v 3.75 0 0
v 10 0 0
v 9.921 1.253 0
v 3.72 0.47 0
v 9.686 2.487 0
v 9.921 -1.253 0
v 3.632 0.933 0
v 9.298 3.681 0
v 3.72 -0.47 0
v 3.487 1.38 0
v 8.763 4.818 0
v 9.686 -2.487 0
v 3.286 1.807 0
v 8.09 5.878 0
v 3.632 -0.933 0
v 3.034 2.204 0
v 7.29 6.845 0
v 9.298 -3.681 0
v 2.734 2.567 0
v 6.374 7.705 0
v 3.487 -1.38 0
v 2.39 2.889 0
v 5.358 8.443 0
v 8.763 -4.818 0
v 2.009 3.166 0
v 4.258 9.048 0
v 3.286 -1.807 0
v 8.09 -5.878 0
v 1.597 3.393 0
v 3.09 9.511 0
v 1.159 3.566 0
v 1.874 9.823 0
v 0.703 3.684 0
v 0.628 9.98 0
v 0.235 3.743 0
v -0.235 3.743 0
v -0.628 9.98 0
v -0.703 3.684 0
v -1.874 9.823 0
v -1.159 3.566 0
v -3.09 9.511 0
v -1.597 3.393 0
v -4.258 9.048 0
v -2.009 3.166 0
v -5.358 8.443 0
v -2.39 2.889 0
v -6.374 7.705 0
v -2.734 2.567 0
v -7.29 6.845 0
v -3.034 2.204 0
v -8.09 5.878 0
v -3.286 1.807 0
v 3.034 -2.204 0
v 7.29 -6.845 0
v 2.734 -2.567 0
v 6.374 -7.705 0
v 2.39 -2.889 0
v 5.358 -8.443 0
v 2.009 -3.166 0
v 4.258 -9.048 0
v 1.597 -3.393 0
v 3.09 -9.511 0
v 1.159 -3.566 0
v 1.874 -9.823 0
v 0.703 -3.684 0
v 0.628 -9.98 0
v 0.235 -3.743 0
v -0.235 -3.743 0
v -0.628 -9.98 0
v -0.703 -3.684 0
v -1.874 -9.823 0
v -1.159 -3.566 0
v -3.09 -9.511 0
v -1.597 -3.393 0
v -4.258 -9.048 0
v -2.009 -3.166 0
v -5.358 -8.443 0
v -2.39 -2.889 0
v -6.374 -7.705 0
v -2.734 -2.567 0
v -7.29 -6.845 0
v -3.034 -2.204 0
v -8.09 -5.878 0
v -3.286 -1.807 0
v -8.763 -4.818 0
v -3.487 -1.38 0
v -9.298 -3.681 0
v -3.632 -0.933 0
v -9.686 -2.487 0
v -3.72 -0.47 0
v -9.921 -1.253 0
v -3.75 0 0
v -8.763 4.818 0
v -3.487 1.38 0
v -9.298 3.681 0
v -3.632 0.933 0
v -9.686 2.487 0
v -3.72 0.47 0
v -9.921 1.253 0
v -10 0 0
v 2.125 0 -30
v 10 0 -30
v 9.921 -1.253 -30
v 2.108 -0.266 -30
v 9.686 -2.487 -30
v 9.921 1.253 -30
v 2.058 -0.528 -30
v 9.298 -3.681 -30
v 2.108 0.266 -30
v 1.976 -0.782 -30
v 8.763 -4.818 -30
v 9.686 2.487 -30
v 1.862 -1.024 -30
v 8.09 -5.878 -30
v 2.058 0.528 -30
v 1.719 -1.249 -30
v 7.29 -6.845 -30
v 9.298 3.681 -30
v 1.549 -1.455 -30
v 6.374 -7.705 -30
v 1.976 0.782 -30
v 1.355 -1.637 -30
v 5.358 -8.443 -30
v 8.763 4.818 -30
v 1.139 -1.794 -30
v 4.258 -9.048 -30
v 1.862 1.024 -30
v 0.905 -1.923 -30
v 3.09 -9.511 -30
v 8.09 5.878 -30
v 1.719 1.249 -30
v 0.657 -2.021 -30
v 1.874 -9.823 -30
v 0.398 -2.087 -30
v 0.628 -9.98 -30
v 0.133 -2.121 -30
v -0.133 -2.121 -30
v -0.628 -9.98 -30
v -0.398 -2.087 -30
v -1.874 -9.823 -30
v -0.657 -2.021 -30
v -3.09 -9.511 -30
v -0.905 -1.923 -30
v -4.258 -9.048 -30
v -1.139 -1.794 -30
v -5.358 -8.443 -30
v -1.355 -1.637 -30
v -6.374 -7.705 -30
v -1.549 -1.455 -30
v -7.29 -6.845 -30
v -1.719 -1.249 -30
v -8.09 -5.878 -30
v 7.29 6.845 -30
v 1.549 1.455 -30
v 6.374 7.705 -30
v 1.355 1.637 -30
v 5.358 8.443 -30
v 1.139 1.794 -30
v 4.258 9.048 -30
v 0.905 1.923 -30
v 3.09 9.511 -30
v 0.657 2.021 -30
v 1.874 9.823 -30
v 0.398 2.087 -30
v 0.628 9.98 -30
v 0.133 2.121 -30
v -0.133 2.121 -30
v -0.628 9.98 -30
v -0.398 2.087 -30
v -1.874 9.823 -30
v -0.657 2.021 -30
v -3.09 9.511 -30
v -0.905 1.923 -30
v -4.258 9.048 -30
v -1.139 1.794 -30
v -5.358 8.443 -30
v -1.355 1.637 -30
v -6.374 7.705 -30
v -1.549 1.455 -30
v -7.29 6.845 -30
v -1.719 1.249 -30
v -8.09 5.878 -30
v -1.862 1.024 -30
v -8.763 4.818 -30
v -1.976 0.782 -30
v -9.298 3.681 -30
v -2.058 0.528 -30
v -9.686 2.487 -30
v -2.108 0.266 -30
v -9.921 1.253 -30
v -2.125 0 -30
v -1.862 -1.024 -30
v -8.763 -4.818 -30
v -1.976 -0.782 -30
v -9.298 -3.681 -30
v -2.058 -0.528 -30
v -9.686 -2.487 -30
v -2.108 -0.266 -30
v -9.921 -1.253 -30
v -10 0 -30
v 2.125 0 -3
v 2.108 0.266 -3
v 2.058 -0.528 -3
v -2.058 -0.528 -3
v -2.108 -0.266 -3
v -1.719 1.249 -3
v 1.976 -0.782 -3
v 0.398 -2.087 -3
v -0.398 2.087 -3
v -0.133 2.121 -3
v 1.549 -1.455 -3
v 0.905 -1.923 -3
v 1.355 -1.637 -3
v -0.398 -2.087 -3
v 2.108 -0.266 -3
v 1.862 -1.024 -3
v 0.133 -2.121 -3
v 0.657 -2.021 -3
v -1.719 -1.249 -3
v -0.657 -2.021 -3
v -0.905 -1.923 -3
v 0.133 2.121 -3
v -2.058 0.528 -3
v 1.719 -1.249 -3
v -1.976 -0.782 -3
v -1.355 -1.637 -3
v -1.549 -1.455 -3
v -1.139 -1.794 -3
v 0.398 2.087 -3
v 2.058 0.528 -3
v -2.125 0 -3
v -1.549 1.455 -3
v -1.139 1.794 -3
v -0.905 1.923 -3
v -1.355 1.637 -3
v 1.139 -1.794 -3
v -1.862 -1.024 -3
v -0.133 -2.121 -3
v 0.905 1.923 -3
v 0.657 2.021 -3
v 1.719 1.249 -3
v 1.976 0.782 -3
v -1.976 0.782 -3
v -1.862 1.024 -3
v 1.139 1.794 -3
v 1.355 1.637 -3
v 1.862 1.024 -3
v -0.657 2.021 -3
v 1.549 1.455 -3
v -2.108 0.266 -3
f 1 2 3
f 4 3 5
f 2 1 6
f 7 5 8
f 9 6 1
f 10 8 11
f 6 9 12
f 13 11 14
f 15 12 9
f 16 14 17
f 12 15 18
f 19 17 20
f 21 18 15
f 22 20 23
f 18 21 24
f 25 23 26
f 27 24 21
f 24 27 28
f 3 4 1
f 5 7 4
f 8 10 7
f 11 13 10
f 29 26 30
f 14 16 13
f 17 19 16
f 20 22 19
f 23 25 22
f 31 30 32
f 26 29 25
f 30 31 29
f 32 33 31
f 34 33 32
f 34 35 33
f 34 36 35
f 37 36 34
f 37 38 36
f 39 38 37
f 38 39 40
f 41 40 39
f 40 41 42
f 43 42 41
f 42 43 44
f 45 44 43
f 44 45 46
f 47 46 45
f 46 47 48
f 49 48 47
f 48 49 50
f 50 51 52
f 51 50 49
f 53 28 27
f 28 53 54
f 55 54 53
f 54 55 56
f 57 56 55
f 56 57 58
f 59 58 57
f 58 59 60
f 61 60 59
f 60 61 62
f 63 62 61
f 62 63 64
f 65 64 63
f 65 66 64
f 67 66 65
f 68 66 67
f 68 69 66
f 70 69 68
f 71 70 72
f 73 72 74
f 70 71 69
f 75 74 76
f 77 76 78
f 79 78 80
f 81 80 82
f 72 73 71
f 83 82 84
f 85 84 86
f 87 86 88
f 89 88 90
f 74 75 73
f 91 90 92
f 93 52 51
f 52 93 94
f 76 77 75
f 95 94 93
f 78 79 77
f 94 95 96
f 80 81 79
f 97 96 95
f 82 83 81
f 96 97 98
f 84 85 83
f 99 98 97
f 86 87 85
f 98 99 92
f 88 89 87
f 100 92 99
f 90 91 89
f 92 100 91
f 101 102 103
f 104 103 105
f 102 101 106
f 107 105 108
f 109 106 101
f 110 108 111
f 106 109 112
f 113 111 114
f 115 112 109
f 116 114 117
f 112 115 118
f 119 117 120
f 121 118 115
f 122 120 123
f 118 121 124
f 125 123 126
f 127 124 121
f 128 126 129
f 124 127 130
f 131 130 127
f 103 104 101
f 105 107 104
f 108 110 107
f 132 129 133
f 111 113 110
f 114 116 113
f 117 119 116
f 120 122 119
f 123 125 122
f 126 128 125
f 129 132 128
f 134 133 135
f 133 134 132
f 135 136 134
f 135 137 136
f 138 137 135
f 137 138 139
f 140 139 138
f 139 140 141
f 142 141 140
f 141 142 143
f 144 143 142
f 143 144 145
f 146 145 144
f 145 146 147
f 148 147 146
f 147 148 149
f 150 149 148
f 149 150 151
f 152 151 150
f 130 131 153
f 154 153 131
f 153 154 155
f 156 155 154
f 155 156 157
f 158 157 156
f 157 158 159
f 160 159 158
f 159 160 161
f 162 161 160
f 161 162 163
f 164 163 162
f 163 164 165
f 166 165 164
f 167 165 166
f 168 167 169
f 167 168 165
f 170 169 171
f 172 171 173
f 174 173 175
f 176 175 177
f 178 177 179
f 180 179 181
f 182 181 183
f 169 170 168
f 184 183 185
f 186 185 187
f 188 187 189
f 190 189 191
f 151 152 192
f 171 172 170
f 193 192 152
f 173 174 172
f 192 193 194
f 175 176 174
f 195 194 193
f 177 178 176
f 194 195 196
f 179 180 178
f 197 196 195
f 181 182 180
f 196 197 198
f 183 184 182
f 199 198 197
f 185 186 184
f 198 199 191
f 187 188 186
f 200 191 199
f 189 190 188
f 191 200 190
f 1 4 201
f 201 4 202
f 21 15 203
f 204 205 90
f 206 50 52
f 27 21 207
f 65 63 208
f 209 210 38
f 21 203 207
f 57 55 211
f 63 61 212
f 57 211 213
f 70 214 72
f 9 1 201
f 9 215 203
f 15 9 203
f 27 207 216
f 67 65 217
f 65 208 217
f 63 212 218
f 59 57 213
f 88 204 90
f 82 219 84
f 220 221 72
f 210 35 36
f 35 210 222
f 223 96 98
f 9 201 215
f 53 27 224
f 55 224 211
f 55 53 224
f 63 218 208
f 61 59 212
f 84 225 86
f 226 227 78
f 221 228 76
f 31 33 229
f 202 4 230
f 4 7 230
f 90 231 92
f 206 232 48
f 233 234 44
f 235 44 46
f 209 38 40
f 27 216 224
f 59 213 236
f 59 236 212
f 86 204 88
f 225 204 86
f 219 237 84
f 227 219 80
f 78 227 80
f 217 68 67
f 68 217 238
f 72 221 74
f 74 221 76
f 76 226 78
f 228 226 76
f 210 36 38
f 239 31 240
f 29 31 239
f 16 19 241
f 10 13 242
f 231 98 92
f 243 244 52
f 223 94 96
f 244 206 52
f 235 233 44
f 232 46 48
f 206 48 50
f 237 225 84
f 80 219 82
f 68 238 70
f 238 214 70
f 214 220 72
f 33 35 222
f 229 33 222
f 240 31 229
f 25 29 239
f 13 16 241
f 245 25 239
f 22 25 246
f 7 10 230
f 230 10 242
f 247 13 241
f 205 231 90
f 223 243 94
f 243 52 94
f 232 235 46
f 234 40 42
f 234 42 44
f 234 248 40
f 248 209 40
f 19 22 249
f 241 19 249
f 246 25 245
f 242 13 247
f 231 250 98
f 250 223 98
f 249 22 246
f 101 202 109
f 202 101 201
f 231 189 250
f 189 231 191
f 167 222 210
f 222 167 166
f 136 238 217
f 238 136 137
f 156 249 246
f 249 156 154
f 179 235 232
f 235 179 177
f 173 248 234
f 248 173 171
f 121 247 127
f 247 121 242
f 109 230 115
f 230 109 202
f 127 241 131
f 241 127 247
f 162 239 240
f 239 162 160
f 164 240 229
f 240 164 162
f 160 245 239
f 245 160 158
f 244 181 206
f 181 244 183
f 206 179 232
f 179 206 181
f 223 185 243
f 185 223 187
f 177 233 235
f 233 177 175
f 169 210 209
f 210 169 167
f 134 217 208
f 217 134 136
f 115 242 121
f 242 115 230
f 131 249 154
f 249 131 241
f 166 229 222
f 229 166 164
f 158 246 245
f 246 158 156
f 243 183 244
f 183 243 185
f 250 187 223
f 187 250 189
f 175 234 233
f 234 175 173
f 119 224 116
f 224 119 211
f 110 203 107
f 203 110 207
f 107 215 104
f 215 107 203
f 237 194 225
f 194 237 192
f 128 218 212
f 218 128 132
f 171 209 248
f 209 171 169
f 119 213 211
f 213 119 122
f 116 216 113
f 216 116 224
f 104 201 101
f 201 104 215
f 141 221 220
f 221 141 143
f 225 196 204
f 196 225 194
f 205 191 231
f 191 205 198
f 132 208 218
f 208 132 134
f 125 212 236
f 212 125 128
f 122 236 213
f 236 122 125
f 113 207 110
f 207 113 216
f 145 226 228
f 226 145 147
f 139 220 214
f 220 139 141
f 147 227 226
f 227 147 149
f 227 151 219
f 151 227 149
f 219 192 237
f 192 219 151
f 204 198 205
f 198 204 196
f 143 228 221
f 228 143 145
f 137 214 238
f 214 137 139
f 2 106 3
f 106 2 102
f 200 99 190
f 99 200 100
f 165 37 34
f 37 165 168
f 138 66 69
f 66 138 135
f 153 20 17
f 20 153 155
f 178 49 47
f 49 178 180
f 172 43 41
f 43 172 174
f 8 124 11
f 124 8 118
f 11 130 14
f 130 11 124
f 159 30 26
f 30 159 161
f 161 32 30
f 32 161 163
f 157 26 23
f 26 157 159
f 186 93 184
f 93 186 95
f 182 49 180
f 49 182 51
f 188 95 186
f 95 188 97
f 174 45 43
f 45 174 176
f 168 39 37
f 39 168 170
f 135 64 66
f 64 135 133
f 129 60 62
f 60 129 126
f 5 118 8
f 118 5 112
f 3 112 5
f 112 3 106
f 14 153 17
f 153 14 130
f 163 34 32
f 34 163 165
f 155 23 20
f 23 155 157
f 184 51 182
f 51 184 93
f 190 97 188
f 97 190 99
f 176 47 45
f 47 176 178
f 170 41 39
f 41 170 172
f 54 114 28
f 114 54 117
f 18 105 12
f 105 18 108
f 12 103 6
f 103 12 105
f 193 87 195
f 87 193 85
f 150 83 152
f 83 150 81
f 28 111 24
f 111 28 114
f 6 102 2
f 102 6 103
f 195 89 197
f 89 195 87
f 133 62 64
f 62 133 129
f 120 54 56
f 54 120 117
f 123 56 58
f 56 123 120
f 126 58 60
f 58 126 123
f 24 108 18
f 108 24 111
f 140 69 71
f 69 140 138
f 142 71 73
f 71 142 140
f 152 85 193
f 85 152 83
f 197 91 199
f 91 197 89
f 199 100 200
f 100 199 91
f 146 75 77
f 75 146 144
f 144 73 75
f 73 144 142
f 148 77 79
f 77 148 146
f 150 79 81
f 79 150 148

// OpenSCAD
$fn = 50;


difference() {
	union() {
		translate(v = [0, 0, -30.0000000000]) {
			cylinder(h = 30, r = 10.0000000000);
		}
		cylinder(h = 0, r = 16.0000000000);
	}
	union() {
		translate(v = [0, 0, 0]) {
			rotate(a = [0, 0, 0]) {
				difference() {
					union() {
						#translate(v = [0, 0, -30.0000000000]) {
							cylinder(h = 30, r = 2.0000000000);
						}
						#translate(v = [0, 0, -3]) {
							cylinder(h = 3, r = 10.0000000000, r1 = 2.1250000000, r2 = 3.7500000000);
						}
						#translate(v = [0, 0, -30.0000000000]) {
							cylinder(h = 30, r = 2.1250000000);
						}
						#translate(v = [0, 0, -30.0000000000]) {
							cylinder(h = 30, r = 2.0000000000);
						}
					}
					union();
				}
			}
		}
	}
}
